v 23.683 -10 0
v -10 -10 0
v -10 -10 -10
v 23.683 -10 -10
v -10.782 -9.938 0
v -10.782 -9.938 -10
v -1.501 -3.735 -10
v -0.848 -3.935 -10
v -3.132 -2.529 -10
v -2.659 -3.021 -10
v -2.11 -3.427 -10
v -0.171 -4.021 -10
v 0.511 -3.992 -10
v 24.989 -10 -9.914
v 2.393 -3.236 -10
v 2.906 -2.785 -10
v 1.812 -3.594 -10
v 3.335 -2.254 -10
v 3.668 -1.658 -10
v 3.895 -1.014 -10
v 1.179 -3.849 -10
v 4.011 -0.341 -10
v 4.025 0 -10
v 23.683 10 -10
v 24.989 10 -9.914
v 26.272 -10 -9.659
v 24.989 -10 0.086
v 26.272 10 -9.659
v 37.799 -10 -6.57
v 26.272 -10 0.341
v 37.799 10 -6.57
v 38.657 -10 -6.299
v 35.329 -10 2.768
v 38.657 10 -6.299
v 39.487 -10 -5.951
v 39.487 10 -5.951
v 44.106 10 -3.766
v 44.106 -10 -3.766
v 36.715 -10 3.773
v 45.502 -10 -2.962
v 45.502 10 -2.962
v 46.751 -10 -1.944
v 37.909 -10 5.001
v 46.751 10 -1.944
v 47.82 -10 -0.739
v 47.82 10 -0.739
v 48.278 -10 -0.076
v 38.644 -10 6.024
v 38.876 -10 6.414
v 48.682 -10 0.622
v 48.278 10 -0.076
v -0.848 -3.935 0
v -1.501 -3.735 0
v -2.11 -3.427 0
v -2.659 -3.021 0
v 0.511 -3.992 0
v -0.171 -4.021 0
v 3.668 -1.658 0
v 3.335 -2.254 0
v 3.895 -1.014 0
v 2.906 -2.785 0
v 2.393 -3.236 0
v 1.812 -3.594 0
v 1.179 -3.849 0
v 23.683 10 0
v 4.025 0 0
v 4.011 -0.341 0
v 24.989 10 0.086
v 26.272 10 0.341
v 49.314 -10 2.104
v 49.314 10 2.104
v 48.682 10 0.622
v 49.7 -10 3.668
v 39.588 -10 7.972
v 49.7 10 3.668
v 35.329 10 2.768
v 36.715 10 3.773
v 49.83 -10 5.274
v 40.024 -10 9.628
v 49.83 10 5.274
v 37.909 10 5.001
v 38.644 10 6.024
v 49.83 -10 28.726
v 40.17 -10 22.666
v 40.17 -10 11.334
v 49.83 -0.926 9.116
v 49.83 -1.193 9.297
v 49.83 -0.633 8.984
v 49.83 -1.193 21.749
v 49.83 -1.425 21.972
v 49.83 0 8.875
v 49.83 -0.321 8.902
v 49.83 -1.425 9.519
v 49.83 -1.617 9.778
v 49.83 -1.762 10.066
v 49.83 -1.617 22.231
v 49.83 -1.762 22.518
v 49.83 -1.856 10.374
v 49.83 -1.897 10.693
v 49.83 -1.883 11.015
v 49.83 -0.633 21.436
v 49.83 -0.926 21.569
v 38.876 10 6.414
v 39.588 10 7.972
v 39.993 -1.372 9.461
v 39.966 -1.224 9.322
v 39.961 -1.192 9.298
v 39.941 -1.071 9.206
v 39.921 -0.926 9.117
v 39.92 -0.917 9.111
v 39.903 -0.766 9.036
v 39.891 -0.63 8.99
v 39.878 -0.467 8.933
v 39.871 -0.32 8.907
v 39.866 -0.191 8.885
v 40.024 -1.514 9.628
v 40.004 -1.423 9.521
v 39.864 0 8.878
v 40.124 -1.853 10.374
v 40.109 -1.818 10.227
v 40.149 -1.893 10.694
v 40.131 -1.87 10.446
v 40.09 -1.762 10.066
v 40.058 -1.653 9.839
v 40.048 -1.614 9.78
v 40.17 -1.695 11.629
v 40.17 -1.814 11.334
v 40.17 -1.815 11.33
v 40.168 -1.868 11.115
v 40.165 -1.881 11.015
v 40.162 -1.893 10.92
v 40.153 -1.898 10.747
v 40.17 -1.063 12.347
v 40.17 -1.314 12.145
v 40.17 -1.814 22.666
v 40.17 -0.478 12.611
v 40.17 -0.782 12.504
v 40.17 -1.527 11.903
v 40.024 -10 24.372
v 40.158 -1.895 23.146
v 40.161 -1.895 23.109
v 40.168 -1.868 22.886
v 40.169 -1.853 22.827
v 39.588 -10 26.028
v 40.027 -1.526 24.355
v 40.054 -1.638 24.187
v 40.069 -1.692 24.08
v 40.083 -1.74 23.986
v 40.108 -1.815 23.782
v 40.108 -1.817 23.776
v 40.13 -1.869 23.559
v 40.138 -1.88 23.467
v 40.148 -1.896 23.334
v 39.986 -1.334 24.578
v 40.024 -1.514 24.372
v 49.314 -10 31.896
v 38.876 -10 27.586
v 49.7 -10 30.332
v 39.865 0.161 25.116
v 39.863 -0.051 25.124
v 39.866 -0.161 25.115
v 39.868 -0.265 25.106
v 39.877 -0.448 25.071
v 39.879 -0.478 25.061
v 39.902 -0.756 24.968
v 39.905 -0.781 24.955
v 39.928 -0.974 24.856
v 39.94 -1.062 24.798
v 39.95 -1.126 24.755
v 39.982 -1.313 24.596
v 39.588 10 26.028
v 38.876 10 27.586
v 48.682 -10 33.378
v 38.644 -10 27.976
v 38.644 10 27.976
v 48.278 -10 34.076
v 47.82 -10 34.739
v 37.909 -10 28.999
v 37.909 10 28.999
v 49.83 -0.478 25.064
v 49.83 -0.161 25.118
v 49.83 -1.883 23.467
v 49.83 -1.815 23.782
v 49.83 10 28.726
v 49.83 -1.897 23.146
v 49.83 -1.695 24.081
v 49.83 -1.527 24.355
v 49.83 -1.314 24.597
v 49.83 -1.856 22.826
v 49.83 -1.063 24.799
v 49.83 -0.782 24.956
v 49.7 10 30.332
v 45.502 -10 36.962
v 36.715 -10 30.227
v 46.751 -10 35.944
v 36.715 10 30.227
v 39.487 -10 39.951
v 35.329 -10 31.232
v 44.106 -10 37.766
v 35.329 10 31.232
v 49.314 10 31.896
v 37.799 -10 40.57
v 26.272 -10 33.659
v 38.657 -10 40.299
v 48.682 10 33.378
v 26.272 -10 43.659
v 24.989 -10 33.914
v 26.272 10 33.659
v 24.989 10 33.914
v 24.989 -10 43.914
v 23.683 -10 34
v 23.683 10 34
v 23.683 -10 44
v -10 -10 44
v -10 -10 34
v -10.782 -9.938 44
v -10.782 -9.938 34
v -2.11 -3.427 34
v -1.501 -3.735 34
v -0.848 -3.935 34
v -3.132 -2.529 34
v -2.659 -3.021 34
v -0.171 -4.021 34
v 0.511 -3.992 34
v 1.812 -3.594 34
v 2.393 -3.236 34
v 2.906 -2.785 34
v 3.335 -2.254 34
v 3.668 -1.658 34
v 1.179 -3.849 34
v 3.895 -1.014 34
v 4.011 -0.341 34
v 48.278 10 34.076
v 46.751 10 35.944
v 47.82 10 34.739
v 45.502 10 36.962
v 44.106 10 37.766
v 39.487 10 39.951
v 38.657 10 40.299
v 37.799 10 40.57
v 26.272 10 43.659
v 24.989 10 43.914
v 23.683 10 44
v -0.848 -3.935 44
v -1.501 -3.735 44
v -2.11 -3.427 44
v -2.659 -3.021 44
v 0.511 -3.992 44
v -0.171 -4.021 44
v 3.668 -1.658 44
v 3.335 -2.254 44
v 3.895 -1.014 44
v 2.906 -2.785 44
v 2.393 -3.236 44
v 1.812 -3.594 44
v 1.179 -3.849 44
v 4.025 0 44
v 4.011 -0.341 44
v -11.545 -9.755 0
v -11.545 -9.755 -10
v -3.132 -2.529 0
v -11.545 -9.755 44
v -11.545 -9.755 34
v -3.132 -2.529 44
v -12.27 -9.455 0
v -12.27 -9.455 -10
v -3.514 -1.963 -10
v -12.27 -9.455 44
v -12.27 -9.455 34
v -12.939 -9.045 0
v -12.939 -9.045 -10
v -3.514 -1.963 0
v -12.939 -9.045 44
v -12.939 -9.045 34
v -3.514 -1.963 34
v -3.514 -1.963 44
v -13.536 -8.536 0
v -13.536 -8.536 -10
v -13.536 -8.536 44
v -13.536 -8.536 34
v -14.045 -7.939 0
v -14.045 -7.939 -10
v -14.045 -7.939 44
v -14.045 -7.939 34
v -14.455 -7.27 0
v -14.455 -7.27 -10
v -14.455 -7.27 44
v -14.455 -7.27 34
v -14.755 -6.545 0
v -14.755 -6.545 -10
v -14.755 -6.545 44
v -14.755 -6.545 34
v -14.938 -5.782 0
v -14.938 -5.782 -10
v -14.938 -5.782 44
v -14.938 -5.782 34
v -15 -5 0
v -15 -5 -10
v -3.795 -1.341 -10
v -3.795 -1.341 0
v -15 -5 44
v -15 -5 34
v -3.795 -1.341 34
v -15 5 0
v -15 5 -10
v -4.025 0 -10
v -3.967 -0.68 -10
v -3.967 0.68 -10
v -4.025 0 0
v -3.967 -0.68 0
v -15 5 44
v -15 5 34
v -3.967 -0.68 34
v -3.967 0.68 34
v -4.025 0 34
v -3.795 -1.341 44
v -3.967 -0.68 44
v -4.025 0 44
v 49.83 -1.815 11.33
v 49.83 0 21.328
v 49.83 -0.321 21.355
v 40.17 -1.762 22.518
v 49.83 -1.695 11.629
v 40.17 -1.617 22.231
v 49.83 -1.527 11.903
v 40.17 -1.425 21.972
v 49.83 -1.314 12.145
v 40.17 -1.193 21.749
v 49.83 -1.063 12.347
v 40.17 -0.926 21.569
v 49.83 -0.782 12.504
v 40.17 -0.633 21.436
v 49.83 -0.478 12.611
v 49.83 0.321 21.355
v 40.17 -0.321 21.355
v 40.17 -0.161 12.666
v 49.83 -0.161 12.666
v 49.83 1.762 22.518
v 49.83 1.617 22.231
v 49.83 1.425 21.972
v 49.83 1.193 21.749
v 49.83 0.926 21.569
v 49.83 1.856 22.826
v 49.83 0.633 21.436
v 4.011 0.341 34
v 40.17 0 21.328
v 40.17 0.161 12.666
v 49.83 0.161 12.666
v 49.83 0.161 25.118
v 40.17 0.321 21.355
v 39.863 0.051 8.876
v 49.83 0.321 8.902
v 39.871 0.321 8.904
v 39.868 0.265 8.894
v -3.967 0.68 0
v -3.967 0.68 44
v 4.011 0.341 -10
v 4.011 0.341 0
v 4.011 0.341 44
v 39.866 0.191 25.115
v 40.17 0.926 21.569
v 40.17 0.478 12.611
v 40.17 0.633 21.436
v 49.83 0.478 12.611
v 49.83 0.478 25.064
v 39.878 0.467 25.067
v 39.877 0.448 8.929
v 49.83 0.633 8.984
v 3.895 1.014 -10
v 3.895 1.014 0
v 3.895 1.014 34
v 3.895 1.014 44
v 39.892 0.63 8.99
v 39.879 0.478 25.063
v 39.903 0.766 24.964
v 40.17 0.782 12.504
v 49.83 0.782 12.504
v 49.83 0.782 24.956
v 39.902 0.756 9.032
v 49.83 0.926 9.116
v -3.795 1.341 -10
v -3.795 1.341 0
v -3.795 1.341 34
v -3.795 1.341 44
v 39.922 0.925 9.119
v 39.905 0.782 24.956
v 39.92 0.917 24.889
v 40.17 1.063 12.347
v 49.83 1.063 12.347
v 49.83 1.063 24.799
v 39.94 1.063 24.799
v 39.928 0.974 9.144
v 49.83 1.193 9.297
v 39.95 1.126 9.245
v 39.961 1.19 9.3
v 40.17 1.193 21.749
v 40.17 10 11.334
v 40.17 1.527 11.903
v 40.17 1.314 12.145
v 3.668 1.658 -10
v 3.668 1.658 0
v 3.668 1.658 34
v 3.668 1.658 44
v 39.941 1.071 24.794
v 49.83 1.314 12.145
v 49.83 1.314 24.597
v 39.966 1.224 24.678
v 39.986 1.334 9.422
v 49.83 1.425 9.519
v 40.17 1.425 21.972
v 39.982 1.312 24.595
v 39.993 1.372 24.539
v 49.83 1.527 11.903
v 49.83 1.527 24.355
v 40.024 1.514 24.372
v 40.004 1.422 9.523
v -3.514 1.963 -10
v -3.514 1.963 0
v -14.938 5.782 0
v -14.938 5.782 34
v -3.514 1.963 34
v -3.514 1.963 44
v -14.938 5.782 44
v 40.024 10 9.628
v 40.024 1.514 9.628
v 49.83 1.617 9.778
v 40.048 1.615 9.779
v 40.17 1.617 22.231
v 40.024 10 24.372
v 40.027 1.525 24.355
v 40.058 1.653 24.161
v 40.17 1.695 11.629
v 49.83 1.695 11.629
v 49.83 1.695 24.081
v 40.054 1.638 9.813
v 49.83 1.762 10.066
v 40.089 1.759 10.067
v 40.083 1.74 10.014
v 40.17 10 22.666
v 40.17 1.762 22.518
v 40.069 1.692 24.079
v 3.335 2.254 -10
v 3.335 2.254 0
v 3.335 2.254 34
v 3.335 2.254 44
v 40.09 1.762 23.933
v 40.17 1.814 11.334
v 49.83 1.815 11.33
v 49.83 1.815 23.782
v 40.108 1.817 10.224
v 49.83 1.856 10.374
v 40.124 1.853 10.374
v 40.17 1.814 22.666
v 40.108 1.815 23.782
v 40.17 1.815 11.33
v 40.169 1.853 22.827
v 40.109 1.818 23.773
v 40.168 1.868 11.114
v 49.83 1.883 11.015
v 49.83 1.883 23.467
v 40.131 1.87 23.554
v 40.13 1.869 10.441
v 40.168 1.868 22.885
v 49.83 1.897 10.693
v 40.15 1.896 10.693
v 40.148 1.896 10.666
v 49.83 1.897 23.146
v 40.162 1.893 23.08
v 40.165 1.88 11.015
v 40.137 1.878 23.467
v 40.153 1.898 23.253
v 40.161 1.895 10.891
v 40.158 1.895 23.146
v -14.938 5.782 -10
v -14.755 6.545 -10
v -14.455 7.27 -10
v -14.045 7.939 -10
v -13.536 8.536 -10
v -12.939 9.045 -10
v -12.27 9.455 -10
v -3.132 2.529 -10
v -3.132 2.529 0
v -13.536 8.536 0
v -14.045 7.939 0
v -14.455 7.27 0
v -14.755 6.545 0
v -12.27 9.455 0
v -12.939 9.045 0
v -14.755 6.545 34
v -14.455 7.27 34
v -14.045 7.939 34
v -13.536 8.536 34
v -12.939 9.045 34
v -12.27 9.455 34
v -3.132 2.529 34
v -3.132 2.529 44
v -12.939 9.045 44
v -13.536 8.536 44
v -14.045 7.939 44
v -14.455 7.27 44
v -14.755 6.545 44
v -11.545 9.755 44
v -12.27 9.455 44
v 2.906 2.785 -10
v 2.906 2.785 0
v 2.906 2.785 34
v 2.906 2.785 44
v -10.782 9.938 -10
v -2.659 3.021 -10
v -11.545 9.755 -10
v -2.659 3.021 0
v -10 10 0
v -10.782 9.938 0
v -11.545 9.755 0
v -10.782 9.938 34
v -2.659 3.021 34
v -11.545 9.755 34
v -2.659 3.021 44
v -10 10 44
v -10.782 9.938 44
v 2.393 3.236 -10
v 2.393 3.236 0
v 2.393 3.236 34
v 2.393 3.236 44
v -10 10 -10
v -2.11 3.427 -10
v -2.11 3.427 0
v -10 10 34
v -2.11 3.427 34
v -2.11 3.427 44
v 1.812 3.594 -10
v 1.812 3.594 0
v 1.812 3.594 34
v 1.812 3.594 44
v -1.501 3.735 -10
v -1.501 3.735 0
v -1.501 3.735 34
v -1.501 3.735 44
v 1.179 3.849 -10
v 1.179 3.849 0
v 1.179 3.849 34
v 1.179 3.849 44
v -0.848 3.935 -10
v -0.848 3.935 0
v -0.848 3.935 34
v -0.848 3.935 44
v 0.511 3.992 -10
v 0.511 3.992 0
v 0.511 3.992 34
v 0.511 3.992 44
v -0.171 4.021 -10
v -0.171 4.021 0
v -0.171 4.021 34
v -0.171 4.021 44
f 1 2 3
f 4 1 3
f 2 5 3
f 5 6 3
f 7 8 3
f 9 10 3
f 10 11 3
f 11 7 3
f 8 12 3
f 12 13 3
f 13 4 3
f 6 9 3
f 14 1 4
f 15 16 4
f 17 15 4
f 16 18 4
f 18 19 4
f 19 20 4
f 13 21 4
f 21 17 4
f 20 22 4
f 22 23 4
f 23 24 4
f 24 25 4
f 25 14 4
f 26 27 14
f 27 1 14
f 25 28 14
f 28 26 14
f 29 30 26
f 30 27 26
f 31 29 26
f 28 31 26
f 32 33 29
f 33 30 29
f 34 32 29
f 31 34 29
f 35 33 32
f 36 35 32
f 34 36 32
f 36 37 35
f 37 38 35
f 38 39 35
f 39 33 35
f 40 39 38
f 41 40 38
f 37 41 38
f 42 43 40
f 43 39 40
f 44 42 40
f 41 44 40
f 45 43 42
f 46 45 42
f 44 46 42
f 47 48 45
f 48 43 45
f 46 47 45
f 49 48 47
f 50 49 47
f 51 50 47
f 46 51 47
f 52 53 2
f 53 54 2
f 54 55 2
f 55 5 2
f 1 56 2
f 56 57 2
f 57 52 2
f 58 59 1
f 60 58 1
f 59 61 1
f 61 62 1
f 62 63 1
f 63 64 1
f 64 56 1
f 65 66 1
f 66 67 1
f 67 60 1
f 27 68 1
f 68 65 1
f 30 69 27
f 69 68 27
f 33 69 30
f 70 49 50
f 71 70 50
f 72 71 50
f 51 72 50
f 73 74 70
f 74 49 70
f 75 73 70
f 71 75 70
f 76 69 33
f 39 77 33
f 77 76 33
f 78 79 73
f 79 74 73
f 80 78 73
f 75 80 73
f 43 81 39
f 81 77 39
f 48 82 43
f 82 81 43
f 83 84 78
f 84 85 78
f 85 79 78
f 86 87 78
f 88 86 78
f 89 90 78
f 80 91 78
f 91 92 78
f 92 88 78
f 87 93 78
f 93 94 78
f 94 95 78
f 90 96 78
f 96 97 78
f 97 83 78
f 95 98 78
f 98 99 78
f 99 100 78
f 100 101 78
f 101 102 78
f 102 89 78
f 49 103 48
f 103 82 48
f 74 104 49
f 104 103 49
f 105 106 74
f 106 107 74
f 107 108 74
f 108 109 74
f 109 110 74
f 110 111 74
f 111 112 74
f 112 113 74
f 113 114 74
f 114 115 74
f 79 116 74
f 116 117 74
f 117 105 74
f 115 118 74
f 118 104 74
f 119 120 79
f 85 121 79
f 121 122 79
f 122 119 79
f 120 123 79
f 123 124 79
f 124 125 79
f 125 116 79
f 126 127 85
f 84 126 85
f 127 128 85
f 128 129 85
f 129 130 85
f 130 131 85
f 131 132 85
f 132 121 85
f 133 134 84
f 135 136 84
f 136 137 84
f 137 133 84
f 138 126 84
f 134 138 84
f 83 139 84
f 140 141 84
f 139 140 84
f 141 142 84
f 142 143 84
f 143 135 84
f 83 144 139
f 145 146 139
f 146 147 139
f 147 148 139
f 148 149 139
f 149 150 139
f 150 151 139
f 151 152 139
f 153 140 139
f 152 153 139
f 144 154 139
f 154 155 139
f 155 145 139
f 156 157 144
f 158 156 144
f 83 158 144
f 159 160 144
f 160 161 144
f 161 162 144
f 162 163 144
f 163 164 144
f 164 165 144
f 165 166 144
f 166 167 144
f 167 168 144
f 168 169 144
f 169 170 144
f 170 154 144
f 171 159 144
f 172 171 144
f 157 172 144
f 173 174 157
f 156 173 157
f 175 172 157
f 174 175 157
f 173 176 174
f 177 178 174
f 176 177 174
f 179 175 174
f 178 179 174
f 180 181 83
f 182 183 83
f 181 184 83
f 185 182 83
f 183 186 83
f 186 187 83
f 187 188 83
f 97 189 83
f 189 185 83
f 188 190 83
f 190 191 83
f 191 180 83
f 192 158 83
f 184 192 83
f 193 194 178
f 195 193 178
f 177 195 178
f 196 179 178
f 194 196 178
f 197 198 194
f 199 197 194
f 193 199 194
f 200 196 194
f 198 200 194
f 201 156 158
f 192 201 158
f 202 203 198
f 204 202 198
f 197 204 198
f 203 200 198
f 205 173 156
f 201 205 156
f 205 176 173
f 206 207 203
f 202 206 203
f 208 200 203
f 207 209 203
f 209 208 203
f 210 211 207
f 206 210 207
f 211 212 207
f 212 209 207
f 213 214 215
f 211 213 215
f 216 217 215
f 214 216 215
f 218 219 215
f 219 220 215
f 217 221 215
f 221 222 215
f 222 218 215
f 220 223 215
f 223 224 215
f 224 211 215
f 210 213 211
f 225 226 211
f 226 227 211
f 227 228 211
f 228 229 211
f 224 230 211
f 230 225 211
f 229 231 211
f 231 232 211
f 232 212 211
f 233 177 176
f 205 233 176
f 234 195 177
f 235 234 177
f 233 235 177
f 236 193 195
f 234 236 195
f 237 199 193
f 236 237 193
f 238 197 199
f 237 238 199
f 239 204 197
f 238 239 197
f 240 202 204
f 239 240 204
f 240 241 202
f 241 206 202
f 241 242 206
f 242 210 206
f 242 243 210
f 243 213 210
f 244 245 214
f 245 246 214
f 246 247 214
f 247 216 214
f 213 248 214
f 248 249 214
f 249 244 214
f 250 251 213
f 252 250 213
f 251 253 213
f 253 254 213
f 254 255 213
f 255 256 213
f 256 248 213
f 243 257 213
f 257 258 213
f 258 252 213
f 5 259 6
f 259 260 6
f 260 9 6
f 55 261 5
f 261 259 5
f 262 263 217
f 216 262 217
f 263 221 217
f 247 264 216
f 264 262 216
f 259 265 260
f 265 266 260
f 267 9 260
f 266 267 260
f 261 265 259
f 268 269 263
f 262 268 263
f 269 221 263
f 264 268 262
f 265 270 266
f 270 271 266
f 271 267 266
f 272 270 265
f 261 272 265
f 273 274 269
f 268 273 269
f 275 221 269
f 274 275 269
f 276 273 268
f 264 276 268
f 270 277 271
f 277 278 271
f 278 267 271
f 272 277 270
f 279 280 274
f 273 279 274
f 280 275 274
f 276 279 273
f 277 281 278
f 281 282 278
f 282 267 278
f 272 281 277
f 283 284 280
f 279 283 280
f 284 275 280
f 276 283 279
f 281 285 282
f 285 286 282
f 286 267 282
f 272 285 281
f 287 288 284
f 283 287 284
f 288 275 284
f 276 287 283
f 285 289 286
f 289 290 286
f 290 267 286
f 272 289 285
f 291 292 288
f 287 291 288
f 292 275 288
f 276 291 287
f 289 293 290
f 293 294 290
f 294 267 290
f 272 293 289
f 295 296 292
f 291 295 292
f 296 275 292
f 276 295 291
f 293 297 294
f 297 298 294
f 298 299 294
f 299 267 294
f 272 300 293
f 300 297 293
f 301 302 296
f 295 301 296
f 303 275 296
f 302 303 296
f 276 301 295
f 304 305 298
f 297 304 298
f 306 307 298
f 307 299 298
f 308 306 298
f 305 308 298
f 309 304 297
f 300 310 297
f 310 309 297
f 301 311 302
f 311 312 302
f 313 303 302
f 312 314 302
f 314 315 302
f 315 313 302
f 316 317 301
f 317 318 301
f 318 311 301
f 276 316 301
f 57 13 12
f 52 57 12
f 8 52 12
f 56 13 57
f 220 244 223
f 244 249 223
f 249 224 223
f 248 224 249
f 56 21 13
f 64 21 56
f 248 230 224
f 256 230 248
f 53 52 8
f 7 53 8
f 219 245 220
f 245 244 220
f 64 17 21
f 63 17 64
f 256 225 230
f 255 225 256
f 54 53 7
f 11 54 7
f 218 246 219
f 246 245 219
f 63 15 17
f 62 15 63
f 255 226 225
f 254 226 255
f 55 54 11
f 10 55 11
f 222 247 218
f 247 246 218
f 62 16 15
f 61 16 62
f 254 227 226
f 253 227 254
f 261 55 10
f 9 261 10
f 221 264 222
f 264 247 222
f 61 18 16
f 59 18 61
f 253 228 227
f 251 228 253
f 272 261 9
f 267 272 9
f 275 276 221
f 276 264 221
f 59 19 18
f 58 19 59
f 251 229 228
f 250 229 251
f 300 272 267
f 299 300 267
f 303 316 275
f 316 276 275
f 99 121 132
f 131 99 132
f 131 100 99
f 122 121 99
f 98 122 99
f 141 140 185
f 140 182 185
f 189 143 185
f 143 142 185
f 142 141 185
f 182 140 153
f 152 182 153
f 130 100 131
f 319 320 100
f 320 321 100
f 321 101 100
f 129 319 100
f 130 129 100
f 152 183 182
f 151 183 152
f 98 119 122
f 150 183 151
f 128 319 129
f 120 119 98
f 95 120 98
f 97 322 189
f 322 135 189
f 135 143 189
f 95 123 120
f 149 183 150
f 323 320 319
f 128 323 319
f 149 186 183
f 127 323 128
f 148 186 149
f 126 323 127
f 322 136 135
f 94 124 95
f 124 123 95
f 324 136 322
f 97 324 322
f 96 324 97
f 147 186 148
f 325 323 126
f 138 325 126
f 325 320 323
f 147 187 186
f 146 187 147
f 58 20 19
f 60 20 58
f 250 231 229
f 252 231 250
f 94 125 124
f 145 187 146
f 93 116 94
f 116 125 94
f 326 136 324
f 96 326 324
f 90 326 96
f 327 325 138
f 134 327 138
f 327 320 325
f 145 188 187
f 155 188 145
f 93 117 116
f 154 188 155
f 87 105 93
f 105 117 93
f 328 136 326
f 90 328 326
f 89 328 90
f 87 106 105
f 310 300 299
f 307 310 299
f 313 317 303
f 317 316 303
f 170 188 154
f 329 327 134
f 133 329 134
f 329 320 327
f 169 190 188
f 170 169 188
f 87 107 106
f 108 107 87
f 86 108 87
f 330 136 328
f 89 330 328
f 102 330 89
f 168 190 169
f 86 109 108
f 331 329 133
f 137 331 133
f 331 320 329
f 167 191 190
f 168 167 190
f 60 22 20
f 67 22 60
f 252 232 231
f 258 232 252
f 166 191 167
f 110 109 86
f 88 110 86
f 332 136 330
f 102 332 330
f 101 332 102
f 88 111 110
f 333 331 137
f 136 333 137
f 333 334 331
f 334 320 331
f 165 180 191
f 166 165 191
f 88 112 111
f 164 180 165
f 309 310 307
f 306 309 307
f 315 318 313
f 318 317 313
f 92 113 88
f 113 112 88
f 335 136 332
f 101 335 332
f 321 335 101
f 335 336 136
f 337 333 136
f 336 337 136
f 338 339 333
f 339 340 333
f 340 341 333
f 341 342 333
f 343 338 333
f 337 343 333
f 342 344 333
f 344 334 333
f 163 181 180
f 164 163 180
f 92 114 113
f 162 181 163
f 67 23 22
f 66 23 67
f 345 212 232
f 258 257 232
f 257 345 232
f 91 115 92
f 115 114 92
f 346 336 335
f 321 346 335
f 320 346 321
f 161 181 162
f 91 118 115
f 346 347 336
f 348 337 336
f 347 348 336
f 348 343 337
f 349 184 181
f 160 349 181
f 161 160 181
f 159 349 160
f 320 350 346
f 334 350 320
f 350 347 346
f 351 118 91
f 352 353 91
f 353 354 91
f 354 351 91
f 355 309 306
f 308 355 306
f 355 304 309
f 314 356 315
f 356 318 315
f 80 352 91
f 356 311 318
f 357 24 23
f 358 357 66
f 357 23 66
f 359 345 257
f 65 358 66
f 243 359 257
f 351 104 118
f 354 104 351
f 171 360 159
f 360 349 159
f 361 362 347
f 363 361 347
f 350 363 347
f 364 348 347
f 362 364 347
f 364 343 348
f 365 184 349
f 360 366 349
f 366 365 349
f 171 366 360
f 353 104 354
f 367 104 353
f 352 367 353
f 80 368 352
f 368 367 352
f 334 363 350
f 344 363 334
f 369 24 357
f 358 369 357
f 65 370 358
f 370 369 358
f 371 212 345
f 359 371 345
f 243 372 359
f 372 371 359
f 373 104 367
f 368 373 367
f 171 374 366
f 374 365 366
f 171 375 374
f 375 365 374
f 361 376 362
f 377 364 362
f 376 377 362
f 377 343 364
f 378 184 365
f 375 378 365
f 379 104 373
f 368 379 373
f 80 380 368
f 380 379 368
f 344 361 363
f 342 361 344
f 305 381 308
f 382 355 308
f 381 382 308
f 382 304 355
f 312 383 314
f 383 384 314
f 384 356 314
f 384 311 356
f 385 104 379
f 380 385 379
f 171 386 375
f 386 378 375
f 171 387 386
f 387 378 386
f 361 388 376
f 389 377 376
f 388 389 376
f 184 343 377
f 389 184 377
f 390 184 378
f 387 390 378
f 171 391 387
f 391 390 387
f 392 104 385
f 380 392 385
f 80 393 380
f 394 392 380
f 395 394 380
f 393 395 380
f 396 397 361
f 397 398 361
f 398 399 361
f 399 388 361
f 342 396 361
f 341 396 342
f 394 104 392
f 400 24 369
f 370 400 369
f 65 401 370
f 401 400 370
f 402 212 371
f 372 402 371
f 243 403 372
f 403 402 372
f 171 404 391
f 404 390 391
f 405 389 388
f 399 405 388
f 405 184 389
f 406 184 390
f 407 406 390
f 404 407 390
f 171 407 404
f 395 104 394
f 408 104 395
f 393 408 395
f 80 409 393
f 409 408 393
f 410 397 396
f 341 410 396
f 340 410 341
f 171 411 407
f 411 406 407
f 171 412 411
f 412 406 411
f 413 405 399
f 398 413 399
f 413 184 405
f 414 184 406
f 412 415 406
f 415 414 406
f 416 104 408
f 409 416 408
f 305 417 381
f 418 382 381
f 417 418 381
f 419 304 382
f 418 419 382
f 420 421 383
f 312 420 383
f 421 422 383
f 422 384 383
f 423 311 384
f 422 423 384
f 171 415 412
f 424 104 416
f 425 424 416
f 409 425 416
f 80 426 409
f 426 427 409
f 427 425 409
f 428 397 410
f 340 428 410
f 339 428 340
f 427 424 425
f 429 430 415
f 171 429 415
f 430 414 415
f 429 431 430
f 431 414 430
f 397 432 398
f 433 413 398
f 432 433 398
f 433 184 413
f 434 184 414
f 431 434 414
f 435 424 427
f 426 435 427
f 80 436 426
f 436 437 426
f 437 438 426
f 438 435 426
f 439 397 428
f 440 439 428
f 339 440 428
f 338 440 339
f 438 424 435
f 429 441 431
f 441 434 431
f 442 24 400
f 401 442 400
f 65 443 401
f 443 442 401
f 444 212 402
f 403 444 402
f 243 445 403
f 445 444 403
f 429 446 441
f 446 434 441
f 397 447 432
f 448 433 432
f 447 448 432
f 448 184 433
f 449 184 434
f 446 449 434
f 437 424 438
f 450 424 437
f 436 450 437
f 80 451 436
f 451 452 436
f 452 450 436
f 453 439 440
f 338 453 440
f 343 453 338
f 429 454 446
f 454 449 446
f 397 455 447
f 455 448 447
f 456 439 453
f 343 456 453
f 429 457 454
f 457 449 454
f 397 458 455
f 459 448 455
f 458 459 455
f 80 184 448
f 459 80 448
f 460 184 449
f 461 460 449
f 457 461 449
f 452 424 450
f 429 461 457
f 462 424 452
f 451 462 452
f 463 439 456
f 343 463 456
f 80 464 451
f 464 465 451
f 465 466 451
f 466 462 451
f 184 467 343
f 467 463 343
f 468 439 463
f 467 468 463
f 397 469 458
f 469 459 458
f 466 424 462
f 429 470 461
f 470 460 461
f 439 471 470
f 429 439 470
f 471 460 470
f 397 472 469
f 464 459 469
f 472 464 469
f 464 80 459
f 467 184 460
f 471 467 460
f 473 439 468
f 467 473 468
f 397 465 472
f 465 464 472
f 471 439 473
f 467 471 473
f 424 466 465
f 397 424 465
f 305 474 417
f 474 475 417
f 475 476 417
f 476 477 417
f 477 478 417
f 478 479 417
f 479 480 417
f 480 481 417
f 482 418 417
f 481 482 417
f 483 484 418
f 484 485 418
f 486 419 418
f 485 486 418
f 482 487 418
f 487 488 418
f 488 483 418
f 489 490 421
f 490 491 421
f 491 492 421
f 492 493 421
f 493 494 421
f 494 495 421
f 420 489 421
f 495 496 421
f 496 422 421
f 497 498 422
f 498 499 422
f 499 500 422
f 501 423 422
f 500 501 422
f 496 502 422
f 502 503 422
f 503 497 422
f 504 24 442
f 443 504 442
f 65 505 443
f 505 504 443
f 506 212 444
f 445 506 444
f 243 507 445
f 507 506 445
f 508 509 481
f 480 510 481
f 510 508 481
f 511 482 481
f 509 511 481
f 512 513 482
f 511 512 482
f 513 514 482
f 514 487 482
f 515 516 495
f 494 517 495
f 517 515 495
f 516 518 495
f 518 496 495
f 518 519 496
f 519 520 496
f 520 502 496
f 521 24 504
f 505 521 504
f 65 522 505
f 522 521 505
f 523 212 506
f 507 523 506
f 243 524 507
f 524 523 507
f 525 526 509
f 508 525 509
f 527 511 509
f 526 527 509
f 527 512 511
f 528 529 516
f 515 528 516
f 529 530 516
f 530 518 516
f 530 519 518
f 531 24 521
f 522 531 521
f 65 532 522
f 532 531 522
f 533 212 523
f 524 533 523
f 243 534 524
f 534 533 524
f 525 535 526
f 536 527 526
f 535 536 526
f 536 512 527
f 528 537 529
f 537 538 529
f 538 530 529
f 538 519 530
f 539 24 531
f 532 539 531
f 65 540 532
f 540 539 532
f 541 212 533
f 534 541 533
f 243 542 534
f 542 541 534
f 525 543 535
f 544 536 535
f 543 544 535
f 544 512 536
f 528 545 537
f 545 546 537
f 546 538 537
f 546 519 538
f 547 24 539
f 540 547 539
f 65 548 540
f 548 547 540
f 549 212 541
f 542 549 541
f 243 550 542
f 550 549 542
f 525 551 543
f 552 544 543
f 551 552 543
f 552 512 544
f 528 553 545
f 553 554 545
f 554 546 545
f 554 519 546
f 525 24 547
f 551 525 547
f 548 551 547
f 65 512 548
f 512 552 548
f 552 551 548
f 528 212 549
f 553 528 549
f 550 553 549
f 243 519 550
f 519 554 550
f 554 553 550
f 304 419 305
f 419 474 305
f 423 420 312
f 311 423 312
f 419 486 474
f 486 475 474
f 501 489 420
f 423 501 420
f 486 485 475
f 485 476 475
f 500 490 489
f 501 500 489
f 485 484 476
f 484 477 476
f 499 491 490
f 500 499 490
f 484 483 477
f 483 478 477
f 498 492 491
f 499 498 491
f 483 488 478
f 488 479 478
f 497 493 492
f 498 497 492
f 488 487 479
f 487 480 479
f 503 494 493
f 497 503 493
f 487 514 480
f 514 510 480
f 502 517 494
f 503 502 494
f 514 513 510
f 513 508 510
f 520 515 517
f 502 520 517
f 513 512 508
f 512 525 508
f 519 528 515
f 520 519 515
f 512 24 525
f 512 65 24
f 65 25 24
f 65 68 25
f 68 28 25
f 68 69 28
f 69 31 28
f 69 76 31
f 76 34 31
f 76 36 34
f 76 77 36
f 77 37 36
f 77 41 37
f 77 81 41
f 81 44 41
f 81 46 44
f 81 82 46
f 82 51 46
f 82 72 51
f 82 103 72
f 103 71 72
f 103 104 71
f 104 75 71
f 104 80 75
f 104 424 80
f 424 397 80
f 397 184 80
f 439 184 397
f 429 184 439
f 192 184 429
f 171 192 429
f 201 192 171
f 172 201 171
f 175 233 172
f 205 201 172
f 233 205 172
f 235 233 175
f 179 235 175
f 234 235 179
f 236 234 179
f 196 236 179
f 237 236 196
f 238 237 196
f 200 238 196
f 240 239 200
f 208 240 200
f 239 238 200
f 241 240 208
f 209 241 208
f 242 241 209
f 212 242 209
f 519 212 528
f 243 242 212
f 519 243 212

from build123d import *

# Parameters (mm, degrees)
SKETCH4_R                      = 4.025
BOSS_EXTRUDE1_DEPTH            = 10
SWEEP2_START                   = -10
SWEEP2_DEPTH                   = 20
CUT_EXTRUDE2_REACH             = 58.724
BOSS_EXTRUDE2_DEPTH            = 20
CUT_EXTRUDE3_REACH             = 69.223
SKETCH4_10_R                   = 4.025
CUT_EXTRUDE3_DIRECTION_2_DEPTH = 68.223447839
FILLET4_R                      = 10
F_6_CLEARANCE_HOLE1_D          = 3.7973


with BuildPart() as part:
    # Sketch4 → Boss-Extrude1 (new body)
    # profile 1 of 2: a face of its own
    with BuildSketch(Plane.XY):
        with BuildLine():
            Line((-10, 10), (25, 10))
            Line((25, 10), (25, -10))
            Line((25, -10), (-10, -10))
            ThreePointArc((-10, -10), (-13.535533906, -8.535533906), (-15, -5))
            Line((-15, -5), (-15, 5))
            ThreePointArc((-15, 5), (-13.535533906, 8.535533906), (-10, 10))
        make_face()
        Circle(SKETCH4_R, mode=Mode.SUBTRACT)
    # profile 2 of 2: a face of its own
    with BuildSketch(Plane.XY):
        Circle(SKETCH4_R)
    extrude(amount=-BOSS_EXTRUDE1_DEPTH)

    # Sweep2: read off the stored shape, not the designer's step
    # Sweep2 outline → Sweep2 (add)
    with BuildSketch(Plane(origin=(0, 0, 0), x_dir=(1, 0, 0), z_dir=(0, 1, 0)).offset(SWEEP2_START)):
        Polygon((40.170370869, -5.058020855), (40.170370869, -18.294095226), (49.829629131, -15.705904774), (49.829629131, 1.058020855), (38.67117676, 6.336819228), (25, 10), (25, 0), (35.32882324, -2.767599846), align=None)
    extrude(amount=SWEEP2_DEPTH)

    # Sketch18 → Cut-Extrude2 (cut, up to next)
    with BuildSketch(Plane(origin=(0, 10, 0), x_dir=(1, 0, 0), z_dir=(0, 1, 0)), mode=Mode.PRIVATE) as cut_extrude2_sk1:
        Polygon((40.170370869, -18.294095226), (45, -17), (40.170370869, -17), align=None)
    cut_extrude2_tool1 = extrude(cut_extrude2_sk1.sketch, amount=-CUT_EXTRUDE2_REACH, mode=Mode.PRIVATE) & part.part
    add(cut_extrude2_tool1.solids().sort_by_distance((41.780247, 10, 17.431365))[0], mode=Mode.SUBTRACT)

    # Sketch18<3> → Boss-Extrude2 (add, through all)
    with BuildSketch(Plane(origin=(0, 10, 0), x_dir=(1, 0, 0), z_dir=(0, 1, 0))):
        Polygon((49.829629131, -17), (49.829629131, -15.705904774), (45, -17), align=None)
    extrude(amount=-BOSS_EXTRUDE2_DEPTH)

    # Mirror1: part across face


with BuildPart() as part_1:
    add(part.part)
    add(part.part.mirror(Plane(origin=(45, 0, 17), x_dir=(1, 0, 0), z_dir=(0, 0, 1))))

    # Sketch4<10> → Cut-Extrude3 (cut, up to next)
    with BuildSketch(Plane.XY, mode=Mode.PRIVATE) as cut_extrude3_sk1:
        with Locations(Location((0, 0, 0), (0, 0, 180))):
            Circle(SKETCH4_10_R)
    cut_extrude3_tool1 = extrude(cut_extrude3_sk1.sketch, amount=-CUT_EXTRUDE3_REACH, mode=Mode.PRIVATE) & part_1.part
    add(cut_extrude3_tool1.solids().sort_by_distance((0, 0, 0))[0], mode=Mode.SUBTRACT)

    # Sketch4<10> → Cut-Extrude3 direction 2 (cut)
    with BuildSketch(Plane.XY):
        with Locations(Location((0, 0, 0), (0, 0, 180))):
            Circle(SKETCH4_10_R)
    extrude(amount=CUT_EXTRUDE3_DIRECTION_2_DEPTH, mode=Mode.SUBTRACT)

    # Fillet4
    # the kernel refuses this fillet: 10 mm, written as the material it adds along each edge
    with BuildSketch(Plane(origin=(25, 10, 34), x_dir=(-1, 0, 0), z_dir=(0, -1, 0))) as fillet4_piece_1:
        with BuildLine():
            CenterArc((FILLET4_R * 0.131652497591, FILLET4_R), FILLET4_R, 255, 15)
            Line((-FILLET4_R * 0.127166547518, FILLET4_R * 0.0340741737128), (0, 0))
            Line((0, 0), (FILLET4_R * 0.131652497591, 0))
        make_face()
    extrude(amount=20)
    with BuildSketch(Plane(origin=(25, 10, 0), x_dir=(-1, 0, 0), z_dir=(0, -1, 0))) as fillet4_piece_2:
        with BuildLine():
            CenterArc((FILLET4_R * 0.131652497591, -FILLET4_R), FILLET4_R, 90, 15)
            Line((-FILLET4_R * 0.127166547518, -FILLET4_R * 0.0340741737128), (0, 0))
            Line((0, 0), (FILLET4_R * 0.131652497591, 0))
        make_face()
    extrude(amount=20)
    with BuildSketch(Plane(origin=(40.170370869, -10, 5.058020855), x_dir=(0, 0, 1), z_dir=(0, 1, 0))) as fillet4_piece_3:
        with BuildLine():
            CenterArc((6.276396903, -10), FILLET4_R, 90, 58.94603144)
            Line((-2.290421009, -4.841547629), (0, 0))
            Line((0, 0), (6.276396903, 0))
        make_face()
    extrude(amount=20)
    with BuildSketch(Plane(origin=(40.170370869, -10, 28.941979145), x_dir=(-0.90395035591234, 0, 0.4276374095492042), z_dir=(0, 1, 0))) as fillet4_piece_4:
        with BuildLine():
            CenterArc((6.355481446, -9.94992531), FILLET4_R, 95.736251166, 58.94603144)
            Line((-2.684022113, -5.673551214), (0, 0))
            Line((0, 0), (5.355988409, 0))
        make_face()
    extrude(amount=20)
    # the kernel refuses this fillet: 10 mm, written as the material it takes off along each edge
    with BuildSketch(Plane(origin=(49.829629131, -25.829480752, -1.058020855), x_dir=(-0.9039503558586357, 0, -0.4276374096627259), z_dir=(0, 1, 0)), Plane(origin=(49.829629131, -25.829480752, 35.058020855), x_dir=(0, 0, -1), z_dir=(0, 1, 0))) as fillet4_2_piece_1:
        with BuildLine():
            CenterArc((FILLET4_R * 0.633179230062, FILLET4_R), FILLET4_R, 205.317717401, 64.682282599)
            Line((-FILLET4_R * 0.270771125796, FILLET4_R * 0.572362590337), (0, 0))
            Line((0, 0), (FILLET4_R * 0.633179230062, 0))
        make_face()
    extrude(amount=51.658961503, mode=Mode.SUBTRACT)
    with BuildSketch(Plane(origin=(38.67117676, -12.257079455, -6.336819228), x_dir=(0.9039503558586354, 0, 0.42763740966272634), z_dir=(0, 1, 0))) as fillet4_2_piece_2:
        with BuildLine():
            CenterArc((FILLET4_R * 0.0902831782122, -FILLET4_R), FILLET4_R, 90, 10.317717402)
            Line((-FILLET4_R * 0.0888232721735, -FILLET4_R * 0.0161702995791), (0, 0))
            Line((0, 0), (FILLET4_R * 0.0902831782122, 0))
        make_face()
    extrude(amount=24.514158911, mode=Mode.SUBTRACT)
    with BuildSketch(Plane(origin=(25, 13.291312439, -10), x_dir=(-1, 0, 0), z_dir=(0, -1, 0)), Plane(origin=(25, 13.291312439, 44), x_dir=(0.9659258262965777, 0, -0.2588190450744948), z_dir=(0, -1, 0))) as fillet4_2_piece_3:
        with BuildLine():
            CenterArc((FILLET4_R * 0.131652497573, -FILLET4_R), FILLET4_R, 90, 14.999999998)
            Line((-FILLET4_R * 0.127166547502, -FILLET4_R * 0.0340741737034), (0, 0))
            Line((0, 0), (FILLET4_R * 0.131652497573, 0))
        make_face()
    extrude(amount=26.582624879, mode=Mode.SUBTRACT)
    with BuildSketch(Plane(origin=(38.67117676, -12.257079455, 40.336819228), x_dir=(0.9039503558586373, 0, -0.42763740966272235), z_dir=(0, 1, 0))) as fillet4_2_piece_4:
        with BuildLine():
            CenterArc((FILLET4_R * 0.0902831782122, FILLET4_R), FILLET4_R, 259.682282598, 10.317717402)
            Line((-FILLET4_R * 0.0888232721735, FILLET4_R * 0.0161702995791), (0, 0))
            Line((0, 0), (FILLET4_R * 0.0902831782122, 0))
        make_face()
    extrude(amount=24.514158911, mode=Mode.SUBTRACT)

    # #6 Clearance Hole1 (through all)
    with Locations(Plane(origin=(49.829629131, 0, 0), x_dir=(0, 0, -1), z_dir=(1, 0, 0))):
        with Locations((-10.773771446, 0), (-23.226228554, 0)):
            Hole(F_6_CLEARANCE_HOLE1_D / 2)


solid = part_1.part
